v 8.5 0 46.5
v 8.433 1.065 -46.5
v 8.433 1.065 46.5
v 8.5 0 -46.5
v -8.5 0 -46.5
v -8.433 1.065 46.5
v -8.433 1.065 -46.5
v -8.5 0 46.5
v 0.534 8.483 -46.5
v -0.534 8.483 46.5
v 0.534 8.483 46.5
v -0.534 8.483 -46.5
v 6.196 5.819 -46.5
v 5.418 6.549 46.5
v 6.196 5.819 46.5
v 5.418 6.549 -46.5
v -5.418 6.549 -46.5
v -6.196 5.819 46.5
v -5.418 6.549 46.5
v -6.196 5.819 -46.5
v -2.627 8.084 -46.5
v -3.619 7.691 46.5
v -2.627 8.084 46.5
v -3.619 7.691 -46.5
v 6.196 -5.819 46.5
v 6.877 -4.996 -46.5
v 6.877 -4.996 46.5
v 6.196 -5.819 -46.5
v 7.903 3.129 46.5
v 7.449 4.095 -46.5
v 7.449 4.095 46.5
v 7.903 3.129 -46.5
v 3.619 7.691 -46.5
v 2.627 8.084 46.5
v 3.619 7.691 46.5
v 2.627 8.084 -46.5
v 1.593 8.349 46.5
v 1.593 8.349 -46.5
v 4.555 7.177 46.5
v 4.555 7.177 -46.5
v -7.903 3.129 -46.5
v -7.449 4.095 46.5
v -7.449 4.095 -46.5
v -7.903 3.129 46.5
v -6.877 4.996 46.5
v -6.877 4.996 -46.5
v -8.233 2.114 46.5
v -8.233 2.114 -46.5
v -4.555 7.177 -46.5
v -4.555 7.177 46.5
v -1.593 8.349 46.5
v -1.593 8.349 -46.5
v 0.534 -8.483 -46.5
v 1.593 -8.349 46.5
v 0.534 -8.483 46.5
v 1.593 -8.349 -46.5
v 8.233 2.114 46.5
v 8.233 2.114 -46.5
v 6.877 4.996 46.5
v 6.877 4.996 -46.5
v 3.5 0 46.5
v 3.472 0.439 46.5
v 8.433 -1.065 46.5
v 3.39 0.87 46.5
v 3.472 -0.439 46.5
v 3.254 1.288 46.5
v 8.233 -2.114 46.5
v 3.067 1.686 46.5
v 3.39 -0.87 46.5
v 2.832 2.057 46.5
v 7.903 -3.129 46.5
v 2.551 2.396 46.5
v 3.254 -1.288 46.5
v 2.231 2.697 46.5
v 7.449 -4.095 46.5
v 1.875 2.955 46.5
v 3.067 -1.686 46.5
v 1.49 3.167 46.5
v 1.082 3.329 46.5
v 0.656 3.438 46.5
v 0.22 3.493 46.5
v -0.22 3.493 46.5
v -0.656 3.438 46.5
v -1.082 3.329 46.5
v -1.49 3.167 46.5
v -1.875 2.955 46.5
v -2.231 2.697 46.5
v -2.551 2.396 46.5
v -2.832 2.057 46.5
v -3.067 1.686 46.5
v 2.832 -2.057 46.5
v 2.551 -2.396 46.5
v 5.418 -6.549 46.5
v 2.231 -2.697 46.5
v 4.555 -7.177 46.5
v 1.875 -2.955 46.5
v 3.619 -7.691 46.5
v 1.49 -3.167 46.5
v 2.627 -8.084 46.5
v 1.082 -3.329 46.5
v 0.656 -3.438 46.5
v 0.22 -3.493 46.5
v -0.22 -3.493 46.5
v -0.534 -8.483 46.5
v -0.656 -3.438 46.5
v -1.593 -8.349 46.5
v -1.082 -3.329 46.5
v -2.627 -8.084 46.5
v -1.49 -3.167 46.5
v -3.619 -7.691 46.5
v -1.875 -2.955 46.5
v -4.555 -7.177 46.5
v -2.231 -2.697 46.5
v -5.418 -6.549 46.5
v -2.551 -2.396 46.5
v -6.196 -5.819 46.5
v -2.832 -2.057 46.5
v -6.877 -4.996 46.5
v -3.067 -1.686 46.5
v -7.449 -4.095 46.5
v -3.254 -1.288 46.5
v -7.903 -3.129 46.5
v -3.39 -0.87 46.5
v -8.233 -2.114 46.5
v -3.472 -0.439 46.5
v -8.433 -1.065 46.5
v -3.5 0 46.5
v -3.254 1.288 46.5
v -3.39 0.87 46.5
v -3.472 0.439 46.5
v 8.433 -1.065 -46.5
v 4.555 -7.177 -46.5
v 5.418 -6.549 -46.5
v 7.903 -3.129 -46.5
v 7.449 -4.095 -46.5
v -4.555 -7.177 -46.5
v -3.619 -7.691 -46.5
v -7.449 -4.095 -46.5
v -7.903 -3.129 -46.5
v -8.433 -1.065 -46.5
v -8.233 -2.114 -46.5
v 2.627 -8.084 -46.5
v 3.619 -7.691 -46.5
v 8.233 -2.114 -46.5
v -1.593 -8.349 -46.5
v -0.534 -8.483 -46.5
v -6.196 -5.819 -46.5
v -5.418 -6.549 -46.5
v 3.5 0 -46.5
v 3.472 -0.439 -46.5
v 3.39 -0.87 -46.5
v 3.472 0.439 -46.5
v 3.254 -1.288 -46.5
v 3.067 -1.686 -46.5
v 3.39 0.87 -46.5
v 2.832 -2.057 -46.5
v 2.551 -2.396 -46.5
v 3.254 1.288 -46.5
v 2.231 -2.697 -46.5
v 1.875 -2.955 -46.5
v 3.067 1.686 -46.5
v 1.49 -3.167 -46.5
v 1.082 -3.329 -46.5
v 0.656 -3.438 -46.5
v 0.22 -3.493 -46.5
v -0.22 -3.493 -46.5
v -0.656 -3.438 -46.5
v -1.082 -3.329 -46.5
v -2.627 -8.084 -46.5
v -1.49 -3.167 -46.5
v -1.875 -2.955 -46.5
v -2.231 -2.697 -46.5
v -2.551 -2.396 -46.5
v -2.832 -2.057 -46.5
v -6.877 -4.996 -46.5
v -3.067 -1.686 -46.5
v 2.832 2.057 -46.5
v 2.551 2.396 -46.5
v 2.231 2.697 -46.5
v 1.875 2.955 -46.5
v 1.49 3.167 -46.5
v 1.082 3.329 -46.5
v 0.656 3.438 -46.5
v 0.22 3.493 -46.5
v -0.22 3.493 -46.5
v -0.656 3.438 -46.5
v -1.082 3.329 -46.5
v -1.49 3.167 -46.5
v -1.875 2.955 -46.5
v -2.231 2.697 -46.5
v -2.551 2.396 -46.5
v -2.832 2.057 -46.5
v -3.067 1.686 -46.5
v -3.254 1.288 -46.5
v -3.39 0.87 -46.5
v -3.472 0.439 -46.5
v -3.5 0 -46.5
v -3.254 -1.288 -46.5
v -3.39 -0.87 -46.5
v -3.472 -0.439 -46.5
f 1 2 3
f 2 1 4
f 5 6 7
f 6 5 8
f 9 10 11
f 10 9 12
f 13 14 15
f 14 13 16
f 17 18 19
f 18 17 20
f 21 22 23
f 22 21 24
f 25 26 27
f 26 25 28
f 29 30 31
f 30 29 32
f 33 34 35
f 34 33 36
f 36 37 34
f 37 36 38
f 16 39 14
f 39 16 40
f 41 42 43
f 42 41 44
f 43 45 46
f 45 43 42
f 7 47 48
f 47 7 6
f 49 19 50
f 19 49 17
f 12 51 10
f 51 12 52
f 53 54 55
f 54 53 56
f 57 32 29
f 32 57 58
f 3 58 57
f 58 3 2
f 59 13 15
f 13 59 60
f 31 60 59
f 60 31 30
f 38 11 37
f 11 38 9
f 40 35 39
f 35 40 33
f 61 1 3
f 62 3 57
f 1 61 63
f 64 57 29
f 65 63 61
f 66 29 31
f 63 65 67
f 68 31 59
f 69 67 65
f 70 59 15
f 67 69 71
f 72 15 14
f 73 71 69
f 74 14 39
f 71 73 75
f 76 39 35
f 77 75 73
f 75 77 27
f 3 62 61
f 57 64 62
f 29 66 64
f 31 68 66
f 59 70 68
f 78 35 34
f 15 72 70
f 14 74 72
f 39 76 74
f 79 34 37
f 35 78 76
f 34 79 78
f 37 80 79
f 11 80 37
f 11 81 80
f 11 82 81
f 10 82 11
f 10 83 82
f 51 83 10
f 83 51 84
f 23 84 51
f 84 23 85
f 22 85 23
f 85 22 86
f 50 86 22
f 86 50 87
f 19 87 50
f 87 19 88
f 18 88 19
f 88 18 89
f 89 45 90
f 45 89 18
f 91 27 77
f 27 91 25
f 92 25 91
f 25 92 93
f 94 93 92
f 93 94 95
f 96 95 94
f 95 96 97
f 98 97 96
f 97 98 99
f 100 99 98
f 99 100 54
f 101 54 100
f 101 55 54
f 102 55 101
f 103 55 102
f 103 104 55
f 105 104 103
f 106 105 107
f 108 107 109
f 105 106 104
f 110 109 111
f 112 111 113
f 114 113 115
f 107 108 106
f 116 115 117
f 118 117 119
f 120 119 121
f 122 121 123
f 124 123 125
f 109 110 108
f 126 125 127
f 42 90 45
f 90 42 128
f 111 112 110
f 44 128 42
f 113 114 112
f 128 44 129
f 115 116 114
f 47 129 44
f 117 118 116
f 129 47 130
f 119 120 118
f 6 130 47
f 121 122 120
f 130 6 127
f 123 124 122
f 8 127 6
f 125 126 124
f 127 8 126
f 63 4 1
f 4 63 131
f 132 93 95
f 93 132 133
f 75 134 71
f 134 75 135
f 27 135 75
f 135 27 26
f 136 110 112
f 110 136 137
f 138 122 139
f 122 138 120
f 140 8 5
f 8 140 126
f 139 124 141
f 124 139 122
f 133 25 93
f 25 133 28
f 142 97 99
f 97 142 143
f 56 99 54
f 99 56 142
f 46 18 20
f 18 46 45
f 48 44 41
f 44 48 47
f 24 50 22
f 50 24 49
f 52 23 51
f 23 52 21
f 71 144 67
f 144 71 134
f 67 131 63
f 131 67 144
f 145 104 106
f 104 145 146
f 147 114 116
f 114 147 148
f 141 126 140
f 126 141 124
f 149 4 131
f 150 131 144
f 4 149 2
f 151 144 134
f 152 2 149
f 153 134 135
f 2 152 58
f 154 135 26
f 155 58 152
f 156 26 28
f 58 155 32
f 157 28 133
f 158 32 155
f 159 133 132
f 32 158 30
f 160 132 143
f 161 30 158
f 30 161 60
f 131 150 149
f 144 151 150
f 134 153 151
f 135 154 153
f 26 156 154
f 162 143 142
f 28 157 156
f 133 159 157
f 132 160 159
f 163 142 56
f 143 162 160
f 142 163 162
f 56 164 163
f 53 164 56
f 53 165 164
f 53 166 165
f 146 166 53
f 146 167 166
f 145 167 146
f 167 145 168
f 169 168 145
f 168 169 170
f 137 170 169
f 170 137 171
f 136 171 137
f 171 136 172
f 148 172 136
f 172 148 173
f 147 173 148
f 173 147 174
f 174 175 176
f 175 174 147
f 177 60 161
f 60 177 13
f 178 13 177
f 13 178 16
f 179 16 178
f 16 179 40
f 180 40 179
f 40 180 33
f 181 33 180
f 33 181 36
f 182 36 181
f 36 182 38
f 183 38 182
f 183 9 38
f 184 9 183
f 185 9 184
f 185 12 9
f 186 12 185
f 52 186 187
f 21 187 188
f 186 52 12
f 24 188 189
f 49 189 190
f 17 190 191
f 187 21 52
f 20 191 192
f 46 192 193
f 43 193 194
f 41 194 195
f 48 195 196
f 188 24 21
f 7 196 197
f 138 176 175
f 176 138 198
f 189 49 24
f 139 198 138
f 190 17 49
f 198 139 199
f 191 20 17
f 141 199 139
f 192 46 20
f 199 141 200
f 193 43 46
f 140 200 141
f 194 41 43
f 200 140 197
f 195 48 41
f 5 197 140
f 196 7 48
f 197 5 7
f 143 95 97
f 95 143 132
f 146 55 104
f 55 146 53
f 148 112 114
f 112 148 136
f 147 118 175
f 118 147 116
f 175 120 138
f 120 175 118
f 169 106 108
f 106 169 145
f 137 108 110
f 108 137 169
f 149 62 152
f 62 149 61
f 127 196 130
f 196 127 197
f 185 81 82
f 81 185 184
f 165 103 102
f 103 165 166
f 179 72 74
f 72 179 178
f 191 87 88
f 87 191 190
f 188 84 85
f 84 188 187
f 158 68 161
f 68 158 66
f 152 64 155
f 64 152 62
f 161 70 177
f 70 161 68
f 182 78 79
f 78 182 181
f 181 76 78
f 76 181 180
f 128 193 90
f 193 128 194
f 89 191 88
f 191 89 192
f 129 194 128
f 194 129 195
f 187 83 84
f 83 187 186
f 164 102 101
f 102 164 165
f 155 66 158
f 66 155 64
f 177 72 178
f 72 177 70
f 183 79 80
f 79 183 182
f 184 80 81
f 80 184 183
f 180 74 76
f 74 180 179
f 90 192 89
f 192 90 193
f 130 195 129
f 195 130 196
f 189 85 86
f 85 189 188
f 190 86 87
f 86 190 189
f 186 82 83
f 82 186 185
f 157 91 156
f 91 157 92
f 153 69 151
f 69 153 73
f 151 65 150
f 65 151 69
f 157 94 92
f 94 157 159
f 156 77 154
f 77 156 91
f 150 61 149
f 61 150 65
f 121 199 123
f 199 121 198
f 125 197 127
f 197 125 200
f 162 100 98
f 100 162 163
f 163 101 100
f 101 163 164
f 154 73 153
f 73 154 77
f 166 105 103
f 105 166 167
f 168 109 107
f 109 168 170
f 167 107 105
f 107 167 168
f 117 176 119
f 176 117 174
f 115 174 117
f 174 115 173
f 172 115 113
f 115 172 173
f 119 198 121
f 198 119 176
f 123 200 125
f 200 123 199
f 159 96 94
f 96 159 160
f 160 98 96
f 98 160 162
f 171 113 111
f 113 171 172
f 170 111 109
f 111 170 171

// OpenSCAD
$fn = 50;


difference() {
	union() {
		translate(v = [0, 0, -46.5000000000]) {
			cylinder(h = 93, r = 8.5000000000);
		}
	}
	union() {
		translate(v = [0, 0, -100.0000000000]) {
			cylinder(h = 200, r = 3.5000000000);
		}
	}
}
